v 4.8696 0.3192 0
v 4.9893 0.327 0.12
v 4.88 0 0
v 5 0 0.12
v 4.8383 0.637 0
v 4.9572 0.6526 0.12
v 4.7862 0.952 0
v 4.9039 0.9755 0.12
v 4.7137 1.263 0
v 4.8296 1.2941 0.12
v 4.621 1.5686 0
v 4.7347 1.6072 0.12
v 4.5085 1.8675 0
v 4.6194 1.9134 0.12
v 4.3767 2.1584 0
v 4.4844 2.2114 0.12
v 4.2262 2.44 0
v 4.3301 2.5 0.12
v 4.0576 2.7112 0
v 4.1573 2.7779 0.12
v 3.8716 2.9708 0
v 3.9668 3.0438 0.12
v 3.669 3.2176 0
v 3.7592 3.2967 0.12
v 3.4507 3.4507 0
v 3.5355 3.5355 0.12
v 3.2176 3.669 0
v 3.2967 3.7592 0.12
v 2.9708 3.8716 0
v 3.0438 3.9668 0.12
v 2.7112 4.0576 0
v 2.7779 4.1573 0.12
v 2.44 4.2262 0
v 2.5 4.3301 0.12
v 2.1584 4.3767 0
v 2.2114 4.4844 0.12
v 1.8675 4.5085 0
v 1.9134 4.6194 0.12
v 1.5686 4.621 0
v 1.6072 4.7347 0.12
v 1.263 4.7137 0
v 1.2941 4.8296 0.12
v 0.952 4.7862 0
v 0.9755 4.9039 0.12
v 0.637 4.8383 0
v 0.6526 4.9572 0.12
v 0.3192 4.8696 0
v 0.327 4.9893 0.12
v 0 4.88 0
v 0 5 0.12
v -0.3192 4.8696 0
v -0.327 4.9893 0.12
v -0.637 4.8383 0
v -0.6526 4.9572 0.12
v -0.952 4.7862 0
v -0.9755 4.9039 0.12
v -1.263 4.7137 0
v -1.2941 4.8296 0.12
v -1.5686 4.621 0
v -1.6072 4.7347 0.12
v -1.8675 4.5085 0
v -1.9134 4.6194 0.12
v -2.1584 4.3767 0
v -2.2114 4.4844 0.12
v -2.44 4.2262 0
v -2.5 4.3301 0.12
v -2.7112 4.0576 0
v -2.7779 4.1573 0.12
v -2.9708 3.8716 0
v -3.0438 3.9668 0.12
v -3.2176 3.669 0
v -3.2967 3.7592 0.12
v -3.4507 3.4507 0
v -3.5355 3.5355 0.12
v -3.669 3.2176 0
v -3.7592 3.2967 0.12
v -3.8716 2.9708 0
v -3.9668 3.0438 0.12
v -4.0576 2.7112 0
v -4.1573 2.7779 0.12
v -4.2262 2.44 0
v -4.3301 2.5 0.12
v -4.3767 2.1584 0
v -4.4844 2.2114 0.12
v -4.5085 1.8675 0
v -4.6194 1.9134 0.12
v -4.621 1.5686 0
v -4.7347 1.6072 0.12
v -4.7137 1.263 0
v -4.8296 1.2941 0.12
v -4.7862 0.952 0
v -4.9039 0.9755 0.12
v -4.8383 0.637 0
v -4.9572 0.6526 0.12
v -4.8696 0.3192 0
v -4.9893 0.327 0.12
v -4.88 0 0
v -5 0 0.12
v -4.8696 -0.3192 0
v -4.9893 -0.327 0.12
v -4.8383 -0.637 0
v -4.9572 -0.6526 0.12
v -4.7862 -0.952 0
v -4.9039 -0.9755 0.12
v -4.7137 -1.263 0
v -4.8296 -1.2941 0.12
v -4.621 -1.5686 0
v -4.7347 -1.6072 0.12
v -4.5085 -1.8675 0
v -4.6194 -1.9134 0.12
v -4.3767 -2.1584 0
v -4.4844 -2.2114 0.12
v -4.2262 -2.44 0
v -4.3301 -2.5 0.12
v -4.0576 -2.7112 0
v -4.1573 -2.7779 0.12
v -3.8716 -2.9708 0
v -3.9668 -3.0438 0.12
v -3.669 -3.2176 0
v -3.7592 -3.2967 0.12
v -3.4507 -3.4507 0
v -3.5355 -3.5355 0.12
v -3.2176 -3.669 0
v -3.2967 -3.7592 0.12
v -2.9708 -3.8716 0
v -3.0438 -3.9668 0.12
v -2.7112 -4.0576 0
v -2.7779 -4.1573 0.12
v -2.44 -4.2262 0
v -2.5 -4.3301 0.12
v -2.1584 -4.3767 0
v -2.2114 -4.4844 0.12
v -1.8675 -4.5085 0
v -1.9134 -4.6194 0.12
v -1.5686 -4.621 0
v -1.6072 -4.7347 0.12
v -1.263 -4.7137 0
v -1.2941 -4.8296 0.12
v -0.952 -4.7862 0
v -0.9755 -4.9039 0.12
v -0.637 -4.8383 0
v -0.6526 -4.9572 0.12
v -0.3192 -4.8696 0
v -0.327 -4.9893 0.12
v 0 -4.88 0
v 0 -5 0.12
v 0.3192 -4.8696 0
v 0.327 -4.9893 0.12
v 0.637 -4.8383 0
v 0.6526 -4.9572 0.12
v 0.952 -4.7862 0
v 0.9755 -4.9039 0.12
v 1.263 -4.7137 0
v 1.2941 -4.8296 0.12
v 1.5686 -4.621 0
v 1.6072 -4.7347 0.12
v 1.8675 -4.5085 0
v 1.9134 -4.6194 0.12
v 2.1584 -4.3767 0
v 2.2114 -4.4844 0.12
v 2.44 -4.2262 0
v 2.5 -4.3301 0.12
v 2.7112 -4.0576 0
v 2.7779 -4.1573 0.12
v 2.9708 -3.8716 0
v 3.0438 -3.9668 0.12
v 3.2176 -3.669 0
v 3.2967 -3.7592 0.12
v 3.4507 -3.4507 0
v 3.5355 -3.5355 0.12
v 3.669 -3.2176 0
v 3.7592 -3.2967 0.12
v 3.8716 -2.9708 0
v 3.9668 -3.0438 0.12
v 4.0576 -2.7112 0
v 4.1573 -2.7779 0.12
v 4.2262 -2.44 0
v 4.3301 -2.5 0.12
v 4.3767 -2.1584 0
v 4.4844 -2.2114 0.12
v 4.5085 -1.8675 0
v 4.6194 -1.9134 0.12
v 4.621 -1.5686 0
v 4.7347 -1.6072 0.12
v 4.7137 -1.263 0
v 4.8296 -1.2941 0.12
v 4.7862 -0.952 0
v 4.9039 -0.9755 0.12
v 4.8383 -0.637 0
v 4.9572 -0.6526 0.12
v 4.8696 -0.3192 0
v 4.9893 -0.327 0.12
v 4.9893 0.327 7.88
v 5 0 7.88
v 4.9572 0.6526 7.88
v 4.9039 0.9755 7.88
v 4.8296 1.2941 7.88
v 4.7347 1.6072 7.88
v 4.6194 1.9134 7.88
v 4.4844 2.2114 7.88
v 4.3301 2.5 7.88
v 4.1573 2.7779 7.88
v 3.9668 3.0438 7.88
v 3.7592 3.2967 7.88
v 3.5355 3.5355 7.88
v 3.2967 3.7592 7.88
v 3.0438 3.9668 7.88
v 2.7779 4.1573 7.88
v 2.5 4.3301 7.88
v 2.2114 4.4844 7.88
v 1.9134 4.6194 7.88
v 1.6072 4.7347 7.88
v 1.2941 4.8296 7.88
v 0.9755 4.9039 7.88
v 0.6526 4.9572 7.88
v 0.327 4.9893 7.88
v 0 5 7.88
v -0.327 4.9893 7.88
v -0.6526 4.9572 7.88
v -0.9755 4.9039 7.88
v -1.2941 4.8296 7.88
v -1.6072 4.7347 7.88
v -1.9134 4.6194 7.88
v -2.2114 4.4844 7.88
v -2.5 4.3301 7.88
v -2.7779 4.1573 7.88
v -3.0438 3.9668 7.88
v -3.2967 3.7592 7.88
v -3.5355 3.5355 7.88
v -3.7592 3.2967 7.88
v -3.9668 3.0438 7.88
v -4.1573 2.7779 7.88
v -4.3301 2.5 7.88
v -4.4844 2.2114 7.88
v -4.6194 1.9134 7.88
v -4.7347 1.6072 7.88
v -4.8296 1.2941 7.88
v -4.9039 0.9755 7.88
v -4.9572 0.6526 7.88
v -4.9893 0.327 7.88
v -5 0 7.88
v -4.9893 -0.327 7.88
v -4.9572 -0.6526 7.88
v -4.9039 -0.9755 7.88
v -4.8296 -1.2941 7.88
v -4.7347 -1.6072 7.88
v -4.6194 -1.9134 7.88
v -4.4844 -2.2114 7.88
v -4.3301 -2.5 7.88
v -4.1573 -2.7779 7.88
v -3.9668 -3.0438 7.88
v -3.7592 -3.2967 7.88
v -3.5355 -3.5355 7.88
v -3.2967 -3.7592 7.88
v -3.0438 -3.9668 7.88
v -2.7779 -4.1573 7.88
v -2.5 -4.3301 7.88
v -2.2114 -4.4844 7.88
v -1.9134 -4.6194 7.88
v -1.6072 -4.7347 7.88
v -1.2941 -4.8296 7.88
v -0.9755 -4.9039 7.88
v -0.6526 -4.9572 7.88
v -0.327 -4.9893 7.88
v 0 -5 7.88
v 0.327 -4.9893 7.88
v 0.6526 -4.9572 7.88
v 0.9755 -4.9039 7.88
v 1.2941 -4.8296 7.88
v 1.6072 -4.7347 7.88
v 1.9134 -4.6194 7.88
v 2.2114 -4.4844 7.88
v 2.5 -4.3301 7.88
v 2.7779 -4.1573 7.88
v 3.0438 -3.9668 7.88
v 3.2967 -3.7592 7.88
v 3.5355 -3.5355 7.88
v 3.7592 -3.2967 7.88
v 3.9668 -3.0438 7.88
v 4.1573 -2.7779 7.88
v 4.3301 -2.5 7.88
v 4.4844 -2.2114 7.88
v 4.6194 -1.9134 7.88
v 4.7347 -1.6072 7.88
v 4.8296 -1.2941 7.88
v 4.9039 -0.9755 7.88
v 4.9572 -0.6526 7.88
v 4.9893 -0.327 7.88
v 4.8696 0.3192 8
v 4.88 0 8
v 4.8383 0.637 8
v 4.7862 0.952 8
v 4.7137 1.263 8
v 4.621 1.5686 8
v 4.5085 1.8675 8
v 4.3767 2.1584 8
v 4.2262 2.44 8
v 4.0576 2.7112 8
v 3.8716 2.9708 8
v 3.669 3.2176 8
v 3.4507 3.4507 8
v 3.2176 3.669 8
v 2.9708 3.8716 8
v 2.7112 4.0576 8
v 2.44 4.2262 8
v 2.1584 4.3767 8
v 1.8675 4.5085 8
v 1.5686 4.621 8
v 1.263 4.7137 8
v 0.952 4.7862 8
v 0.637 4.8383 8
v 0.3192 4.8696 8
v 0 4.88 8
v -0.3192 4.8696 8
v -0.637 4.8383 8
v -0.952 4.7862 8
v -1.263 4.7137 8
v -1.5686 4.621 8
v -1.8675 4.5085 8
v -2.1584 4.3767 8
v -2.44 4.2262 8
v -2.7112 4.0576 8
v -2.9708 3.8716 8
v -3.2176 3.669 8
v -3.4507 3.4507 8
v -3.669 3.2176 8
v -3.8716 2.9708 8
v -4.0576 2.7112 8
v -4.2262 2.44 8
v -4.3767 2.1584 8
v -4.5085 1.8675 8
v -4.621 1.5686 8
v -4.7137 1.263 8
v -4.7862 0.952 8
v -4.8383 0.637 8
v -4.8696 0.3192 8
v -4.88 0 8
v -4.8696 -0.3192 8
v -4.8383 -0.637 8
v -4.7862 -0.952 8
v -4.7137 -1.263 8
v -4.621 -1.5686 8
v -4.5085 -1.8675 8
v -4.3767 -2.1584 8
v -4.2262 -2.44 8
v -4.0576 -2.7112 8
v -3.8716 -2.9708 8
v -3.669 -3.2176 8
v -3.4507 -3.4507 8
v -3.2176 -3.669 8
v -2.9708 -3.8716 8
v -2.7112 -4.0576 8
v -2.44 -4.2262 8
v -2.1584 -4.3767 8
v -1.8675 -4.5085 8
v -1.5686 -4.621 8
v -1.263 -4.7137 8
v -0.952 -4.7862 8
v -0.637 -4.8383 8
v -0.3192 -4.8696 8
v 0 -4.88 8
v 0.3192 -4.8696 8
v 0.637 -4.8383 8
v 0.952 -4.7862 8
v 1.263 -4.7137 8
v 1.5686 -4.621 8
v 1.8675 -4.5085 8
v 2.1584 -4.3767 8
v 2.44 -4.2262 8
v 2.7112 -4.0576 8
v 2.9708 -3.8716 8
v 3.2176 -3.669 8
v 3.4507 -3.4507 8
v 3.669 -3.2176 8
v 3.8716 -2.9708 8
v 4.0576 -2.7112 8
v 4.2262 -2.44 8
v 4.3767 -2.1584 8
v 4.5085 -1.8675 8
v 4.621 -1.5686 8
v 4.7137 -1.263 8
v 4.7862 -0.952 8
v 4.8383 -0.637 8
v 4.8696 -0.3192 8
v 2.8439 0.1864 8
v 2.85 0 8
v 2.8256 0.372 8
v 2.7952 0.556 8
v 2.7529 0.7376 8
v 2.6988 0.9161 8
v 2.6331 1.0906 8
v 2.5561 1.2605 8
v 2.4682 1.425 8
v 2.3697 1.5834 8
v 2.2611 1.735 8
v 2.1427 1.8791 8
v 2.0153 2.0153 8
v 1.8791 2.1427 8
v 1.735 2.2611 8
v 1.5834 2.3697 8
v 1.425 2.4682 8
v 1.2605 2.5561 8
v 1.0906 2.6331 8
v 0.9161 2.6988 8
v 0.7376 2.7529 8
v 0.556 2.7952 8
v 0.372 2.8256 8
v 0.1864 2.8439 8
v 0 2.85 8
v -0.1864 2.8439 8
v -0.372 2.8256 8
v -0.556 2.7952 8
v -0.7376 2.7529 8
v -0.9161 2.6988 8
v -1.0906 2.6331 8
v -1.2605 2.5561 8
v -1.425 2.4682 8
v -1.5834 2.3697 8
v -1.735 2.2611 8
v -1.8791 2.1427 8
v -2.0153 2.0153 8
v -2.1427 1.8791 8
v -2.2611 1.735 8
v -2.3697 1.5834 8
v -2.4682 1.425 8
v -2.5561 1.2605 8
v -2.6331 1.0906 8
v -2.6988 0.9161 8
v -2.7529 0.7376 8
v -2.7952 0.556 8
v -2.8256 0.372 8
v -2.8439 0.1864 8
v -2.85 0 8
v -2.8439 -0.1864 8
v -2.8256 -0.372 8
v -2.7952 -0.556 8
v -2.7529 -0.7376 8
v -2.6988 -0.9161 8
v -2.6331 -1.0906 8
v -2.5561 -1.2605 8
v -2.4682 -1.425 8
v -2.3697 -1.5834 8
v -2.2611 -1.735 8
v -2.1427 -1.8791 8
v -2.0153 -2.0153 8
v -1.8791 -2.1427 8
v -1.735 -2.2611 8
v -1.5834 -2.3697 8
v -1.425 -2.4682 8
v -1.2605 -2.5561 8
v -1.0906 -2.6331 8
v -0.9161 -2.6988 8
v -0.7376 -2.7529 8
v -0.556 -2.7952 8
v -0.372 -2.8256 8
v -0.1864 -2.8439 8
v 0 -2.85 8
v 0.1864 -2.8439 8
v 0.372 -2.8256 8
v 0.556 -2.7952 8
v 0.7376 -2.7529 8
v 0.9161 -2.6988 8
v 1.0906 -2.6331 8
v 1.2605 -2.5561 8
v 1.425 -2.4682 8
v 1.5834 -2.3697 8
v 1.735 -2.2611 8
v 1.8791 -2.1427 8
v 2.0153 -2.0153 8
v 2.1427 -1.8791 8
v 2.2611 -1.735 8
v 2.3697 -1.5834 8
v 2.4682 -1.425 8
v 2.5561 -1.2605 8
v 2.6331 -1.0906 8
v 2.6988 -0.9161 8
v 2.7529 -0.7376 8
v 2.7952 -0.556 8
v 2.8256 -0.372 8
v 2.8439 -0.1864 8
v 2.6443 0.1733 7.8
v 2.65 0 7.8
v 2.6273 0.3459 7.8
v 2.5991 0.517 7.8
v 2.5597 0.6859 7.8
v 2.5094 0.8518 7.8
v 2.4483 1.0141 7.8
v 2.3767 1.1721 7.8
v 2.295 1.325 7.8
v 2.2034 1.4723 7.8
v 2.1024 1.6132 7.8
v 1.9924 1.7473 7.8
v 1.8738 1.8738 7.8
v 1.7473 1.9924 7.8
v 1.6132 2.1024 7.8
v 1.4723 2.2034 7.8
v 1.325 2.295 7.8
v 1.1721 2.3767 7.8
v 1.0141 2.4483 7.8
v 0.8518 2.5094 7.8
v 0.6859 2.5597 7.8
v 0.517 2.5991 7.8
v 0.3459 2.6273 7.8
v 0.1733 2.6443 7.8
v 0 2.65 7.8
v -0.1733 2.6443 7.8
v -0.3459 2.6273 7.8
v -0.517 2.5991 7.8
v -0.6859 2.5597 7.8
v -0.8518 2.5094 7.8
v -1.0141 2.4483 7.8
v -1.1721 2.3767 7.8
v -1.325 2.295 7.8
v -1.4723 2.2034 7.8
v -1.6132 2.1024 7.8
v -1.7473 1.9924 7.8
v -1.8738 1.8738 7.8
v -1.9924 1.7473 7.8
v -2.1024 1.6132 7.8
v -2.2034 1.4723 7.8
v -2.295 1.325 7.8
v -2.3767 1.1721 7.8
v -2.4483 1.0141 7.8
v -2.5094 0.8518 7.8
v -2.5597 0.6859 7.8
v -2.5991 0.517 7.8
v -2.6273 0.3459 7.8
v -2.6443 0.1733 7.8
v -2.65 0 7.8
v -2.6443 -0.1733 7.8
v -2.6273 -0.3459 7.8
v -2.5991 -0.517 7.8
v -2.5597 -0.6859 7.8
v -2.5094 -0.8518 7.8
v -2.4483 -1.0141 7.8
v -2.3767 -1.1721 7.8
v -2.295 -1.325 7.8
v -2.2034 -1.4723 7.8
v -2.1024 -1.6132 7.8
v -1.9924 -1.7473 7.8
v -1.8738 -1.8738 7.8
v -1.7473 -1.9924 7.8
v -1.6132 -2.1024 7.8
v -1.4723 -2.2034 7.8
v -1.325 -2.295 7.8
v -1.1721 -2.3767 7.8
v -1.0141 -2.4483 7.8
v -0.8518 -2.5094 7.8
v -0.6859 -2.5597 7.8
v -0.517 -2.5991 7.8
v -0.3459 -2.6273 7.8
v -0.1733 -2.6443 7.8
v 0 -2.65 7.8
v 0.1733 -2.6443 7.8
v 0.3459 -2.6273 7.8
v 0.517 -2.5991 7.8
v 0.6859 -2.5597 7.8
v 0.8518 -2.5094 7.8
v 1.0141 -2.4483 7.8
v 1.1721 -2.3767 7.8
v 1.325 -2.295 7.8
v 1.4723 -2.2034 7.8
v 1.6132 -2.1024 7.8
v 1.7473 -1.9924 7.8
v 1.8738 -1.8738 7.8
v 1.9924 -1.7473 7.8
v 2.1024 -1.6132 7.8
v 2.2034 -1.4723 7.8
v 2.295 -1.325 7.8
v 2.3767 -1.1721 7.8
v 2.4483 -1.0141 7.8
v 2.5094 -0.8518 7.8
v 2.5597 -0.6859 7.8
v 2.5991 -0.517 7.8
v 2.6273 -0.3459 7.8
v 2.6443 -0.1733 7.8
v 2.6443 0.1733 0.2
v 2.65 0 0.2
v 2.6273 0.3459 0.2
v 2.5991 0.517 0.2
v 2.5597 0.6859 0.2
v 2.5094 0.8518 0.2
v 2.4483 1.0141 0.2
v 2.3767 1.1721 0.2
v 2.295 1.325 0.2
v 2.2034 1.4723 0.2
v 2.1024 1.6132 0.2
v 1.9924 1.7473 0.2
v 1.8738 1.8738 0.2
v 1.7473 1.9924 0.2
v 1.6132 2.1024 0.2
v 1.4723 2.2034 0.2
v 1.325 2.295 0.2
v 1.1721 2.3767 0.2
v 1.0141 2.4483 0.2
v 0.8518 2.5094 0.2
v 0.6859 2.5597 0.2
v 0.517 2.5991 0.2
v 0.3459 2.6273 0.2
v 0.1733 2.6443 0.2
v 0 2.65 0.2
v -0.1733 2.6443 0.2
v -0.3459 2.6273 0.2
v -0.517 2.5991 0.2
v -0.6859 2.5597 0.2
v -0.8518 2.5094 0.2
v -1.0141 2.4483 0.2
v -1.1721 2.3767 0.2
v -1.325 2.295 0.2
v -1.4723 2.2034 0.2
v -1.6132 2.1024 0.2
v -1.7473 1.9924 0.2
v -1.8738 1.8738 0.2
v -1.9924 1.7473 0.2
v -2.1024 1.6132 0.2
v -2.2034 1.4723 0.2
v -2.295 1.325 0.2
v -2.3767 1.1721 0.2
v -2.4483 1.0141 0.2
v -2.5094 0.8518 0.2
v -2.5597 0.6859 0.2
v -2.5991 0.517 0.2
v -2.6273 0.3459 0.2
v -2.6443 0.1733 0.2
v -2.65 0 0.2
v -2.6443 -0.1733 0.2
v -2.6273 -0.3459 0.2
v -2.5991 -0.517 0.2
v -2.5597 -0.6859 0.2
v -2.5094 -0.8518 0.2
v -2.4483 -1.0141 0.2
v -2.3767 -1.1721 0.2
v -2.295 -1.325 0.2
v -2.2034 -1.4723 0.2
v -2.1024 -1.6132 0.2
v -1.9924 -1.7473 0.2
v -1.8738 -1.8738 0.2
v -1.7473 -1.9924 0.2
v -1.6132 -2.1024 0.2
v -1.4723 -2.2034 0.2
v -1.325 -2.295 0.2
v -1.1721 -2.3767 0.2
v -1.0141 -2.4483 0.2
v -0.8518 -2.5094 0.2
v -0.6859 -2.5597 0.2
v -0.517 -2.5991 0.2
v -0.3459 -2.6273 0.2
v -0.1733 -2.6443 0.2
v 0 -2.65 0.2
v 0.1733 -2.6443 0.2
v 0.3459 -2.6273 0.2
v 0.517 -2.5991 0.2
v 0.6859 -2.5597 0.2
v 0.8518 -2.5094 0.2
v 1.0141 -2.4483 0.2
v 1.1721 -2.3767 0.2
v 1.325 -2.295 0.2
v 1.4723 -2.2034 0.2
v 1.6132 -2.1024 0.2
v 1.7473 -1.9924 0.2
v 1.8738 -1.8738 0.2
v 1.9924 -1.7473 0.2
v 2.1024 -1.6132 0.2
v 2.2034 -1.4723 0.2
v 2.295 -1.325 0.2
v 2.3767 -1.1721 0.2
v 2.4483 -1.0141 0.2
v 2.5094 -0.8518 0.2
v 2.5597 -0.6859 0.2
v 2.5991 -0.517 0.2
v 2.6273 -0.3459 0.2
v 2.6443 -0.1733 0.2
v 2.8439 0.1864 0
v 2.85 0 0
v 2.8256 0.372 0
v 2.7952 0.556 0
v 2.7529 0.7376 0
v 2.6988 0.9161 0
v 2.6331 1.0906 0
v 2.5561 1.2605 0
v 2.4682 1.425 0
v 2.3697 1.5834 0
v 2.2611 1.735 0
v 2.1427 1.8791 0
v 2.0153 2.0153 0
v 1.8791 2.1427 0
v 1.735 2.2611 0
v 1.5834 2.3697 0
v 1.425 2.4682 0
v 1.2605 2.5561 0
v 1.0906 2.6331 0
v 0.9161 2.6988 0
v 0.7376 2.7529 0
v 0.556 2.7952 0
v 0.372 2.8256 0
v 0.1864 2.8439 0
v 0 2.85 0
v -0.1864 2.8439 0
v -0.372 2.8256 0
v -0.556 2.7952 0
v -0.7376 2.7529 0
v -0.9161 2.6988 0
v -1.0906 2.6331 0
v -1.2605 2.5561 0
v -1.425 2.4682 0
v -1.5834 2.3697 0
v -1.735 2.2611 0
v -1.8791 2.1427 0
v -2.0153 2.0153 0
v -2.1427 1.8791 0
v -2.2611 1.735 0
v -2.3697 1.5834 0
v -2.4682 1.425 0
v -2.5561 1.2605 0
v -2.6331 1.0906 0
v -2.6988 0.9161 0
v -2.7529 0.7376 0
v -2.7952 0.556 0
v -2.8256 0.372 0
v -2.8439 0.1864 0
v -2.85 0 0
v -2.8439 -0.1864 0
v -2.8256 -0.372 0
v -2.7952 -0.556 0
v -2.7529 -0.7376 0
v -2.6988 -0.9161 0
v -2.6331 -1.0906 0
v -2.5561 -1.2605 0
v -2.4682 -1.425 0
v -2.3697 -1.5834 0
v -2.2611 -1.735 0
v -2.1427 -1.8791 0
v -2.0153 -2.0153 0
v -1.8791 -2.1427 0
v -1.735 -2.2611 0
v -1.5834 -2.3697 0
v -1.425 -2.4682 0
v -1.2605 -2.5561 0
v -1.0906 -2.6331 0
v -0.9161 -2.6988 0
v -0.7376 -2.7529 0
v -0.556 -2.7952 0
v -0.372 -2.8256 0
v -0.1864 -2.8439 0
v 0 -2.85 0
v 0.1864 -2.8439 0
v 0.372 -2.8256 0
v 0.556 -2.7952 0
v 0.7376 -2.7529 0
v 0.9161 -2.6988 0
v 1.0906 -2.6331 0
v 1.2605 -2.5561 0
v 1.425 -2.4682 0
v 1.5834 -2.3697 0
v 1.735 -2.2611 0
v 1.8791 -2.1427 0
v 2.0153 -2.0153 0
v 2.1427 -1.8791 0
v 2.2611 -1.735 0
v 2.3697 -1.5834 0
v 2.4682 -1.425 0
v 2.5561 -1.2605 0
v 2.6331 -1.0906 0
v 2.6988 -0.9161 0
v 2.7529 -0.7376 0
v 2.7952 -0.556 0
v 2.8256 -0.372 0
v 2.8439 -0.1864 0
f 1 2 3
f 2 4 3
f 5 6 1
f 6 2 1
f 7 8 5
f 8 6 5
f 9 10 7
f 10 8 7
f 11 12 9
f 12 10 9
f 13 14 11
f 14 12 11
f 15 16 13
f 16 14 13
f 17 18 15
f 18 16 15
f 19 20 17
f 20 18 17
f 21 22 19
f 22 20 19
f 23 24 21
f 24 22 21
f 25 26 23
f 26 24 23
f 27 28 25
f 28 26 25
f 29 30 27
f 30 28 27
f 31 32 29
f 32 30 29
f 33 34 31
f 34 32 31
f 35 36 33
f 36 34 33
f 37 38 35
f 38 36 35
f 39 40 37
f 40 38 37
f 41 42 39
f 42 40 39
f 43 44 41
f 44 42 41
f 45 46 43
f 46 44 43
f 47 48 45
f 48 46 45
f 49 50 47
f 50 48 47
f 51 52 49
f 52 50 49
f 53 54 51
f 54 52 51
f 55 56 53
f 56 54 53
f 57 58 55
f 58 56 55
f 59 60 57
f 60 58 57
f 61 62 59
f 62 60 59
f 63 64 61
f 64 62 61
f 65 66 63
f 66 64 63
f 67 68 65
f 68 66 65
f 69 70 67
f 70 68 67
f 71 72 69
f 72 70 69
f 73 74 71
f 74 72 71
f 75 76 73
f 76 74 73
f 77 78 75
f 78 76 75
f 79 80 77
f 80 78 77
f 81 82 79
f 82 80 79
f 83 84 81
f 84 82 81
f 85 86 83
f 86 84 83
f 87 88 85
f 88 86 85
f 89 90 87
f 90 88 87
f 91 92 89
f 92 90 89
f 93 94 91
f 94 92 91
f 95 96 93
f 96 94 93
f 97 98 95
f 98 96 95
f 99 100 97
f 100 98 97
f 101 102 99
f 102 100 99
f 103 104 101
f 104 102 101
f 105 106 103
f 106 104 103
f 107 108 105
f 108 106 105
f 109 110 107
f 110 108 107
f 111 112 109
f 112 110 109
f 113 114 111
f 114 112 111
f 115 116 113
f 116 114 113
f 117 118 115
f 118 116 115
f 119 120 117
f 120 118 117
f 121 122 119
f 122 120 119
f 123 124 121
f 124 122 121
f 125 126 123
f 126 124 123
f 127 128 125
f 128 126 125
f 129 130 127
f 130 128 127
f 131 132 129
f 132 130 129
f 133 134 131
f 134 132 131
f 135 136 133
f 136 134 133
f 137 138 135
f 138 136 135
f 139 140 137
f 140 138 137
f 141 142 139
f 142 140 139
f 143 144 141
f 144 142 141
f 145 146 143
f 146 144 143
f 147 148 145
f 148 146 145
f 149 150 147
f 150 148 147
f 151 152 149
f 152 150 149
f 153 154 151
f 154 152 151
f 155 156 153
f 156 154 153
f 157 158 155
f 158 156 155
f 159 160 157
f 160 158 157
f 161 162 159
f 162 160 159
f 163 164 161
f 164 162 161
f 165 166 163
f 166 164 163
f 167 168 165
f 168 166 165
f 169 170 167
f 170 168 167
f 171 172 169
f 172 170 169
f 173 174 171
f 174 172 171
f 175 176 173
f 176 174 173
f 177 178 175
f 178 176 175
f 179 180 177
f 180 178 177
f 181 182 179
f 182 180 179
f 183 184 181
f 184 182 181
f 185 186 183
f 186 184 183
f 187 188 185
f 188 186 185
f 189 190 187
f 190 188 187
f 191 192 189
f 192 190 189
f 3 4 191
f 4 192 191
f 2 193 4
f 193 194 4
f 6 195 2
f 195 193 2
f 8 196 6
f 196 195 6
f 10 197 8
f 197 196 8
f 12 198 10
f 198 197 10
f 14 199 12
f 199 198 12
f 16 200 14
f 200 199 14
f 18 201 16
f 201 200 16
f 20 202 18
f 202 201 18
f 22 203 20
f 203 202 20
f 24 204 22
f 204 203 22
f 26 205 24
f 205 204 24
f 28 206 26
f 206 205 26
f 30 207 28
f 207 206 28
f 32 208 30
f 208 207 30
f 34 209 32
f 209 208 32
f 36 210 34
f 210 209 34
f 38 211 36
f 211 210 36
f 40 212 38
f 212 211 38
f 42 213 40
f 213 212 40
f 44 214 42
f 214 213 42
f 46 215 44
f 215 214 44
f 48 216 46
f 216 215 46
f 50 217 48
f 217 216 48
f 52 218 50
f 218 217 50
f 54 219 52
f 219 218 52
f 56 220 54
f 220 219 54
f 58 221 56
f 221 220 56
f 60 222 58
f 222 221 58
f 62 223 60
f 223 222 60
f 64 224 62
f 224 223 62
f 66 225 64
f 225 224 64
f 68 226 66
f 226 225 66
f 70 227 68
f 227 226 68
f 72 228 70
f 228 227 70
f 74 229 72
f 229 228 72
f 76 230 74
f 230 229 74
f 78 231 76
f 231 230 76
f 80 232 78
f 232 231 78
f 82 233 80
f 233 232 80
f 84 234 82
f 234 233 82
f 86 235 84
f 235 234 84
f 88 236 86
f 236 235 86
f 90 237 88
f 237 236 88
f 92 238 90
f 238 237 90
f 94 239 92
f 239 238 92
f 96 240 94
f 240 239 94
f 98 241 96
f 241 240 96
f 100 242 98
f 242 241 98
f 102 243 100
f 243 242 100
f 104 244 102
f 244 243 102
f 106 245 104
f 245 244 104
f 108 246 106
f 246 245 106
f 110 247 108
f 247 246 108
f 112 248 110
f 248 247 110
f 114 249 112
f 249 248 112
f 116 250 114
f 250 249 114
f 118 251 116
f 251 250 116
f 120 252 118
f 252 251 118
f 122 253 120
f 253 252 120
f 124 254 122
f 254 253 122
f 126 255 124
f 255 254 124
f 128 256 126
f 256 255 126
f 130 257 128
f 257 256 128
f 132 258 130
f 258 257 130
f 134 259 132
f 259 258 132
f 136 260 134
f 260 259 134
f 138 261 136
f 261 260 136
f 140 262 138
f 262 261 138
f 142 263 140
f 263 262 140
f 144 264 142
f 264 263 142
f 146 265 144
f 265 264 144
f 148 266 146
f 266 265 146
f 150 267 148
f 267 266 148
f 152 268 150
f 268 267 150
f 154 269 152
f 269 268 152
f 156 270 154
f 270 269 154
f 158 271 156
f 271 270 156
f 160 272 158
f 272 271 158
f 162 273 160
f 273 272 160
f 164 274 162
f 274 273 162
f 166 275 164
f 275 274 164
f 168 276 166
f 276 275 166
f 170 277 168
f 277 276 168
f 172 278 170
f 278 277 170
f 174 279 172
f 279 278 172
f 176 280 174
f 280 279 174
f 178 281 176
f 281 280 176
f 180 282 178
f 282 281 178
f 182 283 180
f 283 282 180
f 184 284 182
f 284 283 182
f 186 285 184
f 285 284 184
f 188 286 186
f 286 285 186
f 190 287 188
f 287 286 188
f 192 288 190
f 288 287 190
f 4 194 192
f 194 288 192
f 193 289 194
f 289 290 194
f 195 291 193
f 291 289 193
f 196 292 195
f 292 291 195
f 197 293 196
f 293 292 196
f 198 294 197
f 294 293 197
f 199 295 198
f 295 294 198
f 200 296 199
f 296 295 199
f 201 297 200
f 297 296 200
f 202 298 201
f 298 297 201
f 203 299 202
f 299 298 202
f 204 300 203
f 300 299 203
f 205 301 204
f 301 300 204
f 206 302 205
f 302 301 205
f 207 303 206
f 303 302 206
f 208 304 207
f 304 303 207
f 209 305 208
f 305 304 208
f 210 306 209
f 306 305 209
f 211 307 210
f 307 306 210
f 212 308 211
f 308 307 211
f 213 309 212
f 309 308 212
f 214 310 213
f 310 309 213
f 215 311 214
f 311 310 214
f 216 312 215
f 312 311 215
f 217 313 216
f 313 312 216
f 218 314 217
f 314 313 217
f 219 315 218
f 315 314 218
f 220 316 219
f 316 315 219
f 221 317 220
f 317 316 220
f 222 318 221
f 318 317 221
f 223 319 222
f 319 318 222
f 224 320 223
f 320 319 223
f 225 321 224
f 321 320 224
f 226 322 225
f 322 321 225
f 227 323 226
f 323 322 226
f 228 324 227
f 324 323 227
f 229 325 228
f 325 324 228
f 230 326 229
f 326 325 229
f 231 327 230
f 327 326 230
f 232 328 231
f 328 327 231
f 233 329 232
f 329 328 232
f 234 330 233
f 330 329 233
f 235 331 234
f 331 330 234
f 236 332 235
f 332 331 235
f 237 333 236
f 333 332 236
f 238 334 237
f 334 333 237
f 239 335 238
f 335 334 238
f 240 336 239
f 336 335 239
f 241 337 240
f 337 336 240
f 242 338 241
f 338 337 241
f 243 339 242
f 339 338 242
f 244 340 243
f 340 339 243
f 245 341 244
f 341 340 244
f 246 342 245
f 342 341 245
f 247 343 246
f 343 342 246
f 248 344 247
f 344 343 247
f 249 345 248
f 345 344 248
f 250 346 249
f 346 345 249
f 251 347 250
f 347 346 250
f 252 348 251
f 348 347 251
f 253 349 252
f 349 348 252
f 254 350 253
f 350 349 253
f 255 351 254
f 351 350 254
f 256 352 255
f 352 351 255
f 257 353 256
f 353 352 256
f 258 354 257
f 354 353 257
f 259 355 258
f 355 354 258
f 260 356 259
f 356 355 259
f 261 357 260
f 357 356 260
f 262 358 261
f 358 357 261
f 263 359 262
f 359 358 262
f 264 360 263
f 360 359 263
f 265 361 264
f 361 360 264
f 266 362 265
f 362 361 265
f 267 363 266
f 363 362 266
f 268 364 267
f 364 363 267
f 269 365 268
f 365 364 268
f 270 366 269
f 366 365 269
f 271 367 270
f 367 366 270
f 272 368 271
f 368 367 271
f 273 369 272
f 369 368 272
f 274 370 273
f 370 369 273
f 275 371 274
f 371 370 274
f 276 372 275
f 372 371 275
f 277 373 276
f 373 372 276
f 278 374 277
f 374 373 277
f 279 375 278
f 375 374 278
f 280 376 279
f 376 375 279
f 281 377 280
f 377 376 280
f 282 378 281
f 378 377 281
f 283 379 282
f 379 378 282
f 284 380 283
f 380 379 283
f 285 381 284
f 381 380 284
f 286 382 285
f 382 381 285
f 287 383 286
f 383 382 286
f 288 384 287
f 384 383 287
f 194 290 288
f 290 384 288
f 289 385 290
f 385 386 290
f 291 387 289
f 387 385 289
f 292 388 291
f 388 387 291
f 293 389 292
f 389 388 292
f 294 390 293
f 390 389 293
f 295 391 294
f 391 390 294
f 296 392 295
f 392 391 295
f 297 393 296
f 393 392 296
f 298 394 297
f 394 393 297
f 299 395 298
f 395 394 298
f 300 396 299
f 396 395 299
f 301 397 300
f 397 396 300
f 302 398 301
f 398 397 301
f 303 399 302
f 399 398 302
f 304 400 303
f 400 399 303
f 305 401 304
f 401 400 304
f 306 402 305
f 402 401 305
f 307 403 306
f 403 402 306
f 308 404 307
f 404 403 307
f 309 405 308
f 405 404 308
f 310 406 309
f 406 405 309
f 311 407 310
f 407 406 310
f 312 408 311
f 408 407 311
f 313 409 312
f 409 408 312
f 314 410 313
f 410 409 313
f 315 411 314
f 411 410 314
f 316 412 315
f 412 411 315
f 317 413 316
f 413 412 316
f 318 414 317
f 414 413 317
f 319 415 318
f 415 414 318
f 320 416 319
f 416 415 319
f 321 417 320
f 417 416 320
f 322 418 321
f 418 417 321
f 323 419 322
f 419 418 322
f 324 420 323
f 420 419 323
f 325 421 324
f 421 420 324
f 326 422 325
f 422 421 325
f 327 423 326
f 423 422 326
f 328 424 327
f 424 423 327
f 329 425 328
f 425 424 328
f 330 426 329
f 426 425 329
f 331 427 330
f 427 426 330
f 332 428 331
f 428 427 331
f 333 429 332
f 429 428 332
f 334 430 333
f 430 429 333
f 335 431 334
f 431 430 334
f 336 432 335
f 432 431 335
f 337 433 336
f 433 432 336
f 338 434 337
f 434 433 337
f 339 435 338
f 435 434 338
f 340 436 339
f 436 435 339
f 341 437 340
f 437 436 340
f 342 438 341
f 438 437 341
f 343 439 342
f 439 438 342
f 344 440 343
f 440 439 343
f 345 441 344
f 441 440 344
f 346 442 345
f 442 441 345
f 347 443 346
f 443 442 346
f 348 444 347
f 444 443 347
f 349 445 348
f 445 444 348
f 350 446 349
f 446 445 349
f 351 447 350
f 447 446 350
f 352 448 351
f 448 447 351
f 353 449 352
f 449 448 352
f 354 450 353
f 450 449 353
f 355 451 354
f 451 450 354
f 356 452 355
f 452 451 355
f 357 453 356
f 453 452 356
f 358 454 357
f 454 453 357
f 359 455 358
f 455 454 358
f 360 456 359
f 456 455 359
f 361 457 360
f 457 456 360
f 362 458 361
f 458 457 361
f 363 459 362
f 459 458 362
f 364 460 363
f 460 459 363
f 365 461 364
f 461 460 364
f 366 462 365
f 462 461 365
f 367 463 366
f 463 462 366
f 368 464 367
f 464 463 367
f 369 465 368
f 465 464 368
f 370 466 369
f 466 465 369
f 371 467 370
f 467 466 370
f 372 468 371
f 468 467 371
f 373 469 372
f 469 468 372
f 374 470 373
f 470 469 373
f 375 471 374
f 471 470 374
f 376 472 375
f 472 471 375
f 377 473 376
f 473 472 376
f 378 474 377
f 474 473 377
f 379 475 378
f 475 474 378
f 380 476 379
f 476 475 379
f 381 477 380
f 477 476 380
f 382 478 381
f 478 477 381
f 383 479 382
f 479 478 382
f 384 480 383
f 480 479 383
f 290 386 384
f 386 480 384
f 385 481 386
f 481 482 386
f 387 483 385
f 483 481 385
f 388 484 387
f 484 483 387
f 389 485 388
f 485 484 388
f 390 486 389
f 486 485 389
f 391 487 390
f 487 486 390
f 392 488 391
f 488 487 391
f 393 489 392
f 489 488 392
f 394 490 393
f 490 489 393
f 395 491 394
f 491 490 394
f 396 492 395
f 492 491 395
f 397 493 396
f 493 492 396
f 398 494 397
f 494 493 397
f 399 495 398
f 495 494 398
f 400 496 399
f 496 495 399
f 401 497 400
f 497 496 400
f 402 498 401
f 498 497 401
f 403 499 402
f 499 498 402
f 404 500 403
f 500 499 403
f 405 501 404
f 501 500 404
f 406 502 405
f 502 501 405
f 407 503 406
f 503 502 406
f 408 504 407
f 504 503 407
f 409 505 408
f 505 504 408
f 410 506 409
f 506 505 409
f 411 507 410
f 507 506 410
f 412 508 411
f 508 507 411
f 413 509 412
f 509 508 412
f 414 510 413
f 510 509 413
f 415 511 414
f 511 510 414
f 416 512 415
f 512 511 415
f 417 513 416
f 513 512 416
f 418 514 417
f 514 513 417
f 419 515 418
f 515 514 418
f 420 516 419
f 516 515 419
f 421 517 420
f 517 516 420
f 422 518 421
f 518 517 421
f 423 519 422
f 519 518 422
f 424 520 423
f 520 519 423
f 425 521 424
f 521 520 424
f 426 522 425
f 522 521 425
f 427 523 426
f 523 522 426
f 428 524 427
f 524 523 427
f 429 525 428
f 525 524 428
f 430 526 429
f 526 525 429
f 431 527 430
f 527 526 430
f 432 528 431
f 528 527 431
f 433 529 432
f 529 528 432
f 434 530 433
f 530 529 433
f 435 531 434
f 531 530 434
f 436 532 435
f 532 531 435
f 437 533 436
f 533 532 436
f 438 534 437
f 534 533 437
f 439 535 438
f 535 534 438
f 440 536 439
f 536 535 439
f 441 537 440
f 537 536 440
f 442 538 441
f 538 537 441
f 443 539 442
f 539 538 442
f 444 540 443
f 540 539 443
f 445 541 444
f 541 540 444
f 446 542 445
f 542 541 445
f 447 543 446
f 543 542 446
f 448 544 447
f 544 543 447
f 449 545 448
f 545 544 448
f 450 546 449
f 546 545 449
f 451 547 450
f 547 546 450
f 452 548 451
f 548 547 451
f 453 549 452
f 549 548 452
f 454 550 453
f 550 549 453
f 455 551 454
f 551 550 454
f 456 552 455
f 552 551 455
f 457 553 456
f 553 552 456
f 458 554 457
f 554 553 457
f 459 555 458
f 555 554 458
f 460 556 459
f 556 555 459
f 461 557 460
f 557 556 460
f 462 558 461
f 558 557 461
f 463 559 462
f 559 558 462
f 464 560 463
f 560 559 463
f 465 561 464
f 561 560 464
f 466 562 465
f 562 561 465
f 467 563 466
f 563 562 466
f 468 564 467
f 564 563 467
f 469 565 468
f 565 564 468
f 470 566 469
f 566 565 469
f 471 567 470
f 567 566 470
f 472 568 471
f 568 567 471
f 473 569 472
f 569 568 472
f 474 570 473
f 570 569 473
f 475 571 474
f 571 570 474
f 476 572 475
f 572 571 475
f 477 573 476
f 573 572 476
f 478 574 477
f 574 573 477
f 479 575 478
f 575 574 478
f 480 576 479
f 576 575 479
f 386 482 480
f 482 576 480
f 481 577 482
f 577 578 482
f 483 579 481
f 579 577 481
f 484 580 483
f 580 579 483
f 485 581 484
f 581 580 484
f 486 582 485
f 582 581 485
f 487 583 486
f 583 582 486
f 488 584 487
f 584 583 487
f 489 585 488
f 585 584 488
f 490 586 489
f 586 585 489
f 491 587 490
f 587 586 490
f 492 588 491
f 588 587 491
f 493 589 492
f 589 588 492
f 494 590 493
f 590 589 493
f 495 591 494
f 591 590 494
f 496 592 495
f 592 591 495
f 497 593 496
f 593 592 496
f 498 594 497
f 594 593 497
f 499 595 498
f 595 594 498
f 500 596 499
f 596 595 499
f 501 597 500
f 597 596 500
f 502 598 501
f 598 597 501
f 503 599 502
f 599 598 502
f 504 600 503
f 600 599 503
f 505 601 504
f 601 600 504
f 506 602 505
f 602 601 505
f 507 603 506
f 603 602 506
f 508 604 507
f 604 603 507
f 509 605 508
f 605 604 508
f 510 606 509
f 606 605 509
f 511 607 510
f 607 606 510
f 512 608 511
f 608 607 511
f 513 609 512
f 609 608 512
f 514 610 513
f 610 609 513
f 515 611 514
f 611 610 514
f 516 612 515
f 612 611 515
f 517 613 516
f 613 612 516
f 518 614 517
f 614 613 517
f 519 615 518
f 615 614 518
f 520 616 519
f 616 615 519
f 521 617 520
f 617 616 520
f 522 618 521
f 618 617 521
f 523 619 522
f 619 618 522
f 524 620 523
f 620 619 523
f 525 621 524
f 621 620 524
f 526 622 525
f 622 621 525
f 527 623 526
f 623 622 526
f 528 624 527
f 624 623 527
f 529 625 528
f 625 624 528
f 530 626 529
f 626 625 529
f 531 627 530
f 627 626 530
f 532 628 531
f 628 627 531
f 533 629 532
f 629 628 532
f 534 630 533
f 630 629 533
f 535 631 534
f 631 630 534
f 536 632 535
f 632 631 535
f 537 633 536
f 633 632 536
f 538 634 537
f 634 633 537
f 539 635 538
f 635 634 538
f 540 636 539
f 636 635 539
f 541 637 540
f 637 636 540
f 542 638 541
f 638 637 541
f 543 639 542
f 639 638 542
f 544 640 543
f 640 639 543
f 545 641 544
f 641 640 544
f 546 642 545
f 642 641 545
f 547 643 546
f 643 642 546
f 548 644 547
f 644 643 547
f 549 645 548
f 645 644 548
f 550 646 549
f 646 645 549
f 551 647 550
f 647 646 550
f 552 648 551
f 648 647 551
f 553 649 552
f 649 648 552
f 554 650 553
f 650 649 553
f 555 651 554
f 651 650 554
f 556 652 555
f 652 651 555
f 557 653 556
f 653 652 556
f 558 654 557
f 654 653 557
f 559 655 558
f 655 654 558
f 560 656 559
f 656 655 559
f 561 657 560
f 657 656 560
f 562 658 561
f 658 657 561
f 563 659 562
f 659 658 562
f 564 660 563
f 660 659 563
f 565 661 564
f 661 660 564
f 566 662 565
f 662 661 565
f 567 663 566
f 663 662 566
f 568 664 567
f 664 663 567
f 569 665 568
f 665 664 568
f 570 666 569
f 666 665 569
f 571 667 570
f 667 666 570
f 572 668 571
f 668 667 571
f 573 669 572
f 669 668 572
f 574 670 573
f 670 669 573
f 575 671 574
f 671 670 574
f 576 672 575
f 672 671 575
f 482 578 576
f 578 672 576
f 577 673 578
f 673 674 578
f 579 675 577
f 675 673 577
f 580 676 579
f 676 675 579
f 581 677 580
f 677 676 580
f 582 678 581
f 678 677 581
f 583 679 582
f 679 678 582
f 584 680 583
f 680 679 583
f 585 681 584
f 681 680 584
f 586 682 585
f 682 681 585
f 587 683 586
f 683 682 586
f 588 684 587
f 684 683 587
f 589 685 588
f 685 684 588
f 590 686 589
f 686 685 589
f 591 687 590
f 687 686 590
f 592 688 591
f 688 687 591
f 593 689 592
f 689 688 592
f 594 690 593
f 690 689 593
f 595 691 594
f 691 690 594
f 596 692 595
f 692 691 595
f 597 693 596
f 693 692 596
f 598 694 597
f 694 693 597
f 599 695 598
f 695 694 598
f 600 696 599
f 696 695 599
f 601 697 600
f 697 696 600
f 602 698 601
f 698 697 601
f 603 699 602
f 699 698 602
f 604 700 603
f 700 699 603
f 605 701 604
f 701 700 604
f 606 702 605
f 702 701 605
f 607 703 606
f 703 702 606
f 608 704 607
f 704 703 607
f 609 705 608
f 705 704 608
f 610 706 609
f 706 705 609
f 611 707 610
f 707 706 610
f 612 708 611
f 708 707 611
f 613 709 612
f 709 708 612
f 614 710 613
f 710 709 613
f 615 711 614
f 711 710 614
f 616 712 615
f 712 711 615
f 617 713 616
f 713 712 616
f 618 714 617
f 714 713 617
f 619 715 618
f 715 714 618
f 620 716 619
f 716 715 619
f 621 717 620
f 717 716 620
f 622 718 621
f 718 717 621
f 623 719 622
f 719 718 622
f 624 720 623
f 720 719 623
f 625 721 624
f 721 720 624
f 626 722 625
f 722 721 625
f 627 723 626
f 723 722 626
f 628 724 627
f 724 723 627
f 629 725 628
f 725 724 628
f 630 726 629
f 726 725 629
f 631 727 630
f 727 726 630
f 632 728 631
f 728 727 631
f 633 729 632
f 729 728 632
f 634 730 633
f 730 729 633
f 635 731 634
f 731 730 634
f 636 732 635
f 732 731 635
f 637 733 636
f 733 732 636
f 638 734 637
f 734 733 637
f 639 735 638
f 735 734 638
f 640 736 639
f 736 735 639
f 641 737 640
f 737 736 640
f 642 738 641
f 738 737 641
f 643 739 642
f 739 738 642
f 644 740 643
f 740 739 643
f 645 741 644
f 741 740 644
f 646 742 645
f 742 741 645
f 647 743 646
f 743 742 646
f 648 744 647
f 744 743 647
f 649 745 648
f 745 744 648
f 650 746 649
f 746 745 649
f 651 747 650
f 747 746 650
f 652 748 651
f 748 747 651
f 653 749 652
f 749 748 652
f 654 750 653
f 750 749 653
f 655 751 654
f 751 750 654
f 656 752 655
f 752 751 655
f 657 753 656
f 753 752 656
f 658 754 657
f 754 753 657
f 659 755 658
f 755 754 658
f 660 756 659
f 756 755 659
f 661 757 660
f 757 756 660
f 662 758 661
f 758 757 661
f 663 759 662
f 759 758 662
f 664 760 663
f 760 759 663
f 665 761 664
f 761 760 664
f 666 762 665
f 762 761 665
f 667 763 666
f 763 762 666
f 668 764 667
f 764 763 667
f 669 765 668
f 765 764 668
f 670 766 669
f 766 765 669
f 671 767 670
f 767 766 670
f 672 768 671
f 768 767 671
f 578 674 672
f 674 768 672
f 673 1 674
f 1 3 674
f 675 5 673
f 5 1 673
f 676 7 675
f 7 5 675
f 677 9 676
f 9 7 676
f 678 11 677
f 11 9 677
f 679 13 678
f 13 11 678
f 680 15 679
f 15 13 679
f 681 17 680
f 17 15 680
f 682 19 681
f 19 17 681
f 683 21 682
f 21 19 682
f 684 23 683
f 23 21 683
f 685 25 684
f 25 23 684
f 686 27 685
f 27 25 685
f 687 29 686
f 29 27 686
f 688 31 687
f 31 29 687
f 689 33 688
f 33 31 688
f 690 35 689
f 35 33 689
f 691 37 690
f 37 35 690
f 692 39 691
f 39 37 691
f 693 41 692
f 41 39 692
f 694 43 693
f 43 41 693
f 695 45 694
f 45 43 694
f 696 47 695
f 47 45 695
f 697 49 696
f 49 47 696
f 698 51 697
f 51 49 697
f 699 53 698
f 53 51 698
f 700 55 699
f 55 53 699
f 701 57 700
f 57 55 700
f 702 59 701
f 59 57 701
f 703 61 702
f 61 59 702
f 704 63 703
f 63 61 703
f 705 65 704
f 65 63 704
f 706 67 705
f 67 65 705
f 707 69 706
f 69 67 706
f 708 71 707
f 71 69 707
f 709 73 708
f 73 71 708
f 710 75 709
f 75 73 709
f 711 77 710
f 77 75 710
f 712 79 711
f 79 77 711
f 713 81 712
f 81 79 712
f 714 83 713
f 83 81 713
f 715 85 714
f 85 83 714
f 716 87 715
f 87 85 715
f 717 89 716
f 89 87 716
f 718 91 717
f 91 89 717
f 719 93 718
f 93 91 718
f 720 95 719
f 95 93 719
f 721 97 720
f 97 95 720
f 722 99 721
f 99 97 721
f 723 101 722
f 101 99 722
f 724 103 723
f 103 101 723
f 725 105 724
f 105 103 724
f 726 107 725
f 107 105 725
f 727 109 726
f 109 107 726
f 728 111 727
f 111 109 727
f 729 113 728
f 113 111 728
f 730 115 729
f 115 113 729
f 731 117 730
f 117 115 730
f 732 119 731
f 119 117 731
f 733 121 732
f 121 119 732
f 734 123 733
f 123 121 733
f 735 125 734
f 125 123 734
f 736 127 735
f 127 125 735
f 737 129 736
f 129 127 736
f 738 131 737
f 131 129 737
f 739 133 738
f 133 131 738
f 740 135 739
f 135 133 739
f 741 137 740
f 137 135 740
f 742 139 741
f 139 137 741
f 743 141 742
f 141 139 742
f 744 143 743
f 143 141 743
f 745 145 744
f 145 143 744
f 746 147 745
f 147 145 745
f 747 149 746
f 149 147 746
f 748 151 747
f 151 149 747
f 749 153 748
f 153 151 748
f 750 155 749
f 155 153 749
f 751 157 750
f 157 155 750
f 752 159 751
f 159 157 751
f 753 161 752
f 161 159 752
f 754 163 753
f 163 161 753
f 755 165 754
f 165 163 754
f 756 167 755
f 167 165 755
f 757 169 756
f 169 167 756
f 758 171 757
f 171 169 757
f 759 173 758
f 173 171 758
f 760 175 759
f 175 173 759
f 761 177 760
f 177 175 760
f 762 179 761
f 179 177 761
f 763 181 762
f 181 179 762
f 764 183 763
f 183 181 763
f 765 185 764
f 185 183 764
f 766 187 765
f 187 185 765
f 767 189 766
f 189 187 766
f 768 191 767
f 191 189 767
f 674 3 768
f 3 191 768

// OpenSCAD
// OOMP generic catalogue model; units: mm.
// Stud length is additional to body depth. Tapping depths are model assumptions.
variant = "full"; // [full, display]
family = "spacer";
connection_type = "plain";
depth_mm = 8;
stud_length_mm = 0;
tapped_depth_mm = 0;
bore_mm = 5.3;
outer_diameter_mm = 10;
across_flats_mm = 6;
thread_nominal_diameter_mm = 3;
thread_pitch_mm = 0.5;
edge_chamfer_mm = 0.12;
mouth_chamfer_mm = 0.2;
angular_segments = 96;
samples_per_pitch = 16;

// Boundary travels up the outside, then down any tapped/plain bore.
// Equal-height rings at shoulders form the annular shoulder faces.
n = angular_segments;
threaded = family == "standoff";
has_stud = connection_type == "stud_to_tapped" || connection_type == "stud_to_stud";
two_studs = connection_type == "stud_to_stud";
through = !threaded || connection_type == "tapped_to_tapped";
pitch = thread_pitch_mm;
diameter = threaded ? thread_nominal_diameter_mm : bore_mm;
minor = diameter - 5*sqrt(3)*pitch/8;
transition = mouth_chamfer_mm + (threaded ? 5*sqrt(3)*pitch/16 : 0);
tip_chamfer = mouth_chamfer_mm + 17*sqrt(3)*pitch/48;
function sorted(v) = len(v)<=1 ? v : let(p=v[0])
    concat(sorted([for(x=v) if(x<p-1e-8) x]), [p], sorted([for(x=v) if(x>p+1e-8) x]));
function reverse(v) = [for(i=[len(v)-1:-1:0]) v[i]];
function theta(i) = i*360/n;
function fract(x) = x-floor(x);
function phase_distance(i,z) = abs(fract(z/pitch-theta(i)/360+0.5)-0.5);
function thread_r(i,z) = minor/2 + min(5*sqrt(3)*pitch/16,
    max(0,(phase_distance(i,z)-0.125)*pitch*sqrt(3)));
function stud_r(i,z,tip) = min(diameter/2 - (variant=="full" ?
    min(17*sqrt(3)*pitch/48,max(0,(phase_distance(i,z)-0.0625)*pitch*sqrt(3))) : 0),
    diameter/2-tip_chamfer+abs(z-tip));
function body_r(i,z) = (threaded ? across_flats_mm/2/cos(theta(i)%60-30) : outer_diameter_mm/2)
    - max(0,edge_chamfer_mm-min(z,depth_mm-z));
function bore_r(i,z) = max(threaded ? (variant=="full" ? thread_r(i,z) : minor/2) : diameter/2,
    diameter/2+mouth_chamfer_mm-(through ? min(z,depth_mm-z) : depth_mm-z));
function stud_z(a,b,tip) = let(count=variant=="full" ? ceil(stud_length_mm/pitch*samples_per_pitch) : 1)
    sorted(concat([for(i=[0:count]) a+(b-a)*i/count], [tip==a ? tip+tip_chamfer : tip-tip_chamfer]));
body_z = sorted([0,edge_chamfer_mm,depth_mm-edge_chamfer_mm,depth_mm]);
low = through ? 0 : depth_mm-tapped_depth_mm;
count = threaded && variant=="full" ? ceil((depth_mm-low)/pitch*samples_per_pitch) : 1;
bore_z = two_studs ? [] : reverse(sorted(concat(
    [for(i=[0:count]) low+(depth_mm-low)*i/count],
    [depth_mm-mouth_chamfer_mm,depth_mm-transition],
    through ? [mouth_chamfer_mm,transition] : [])));
// Ring descriptors: [height, kind, tip]. Kind: 0 body, 1 stud, 2 bore.
rings = concat(
    has_stud ? [for(z=stud_z(-stud_length_mm,0,-stud_length_mm)) [z,1,-stud_length_mm]] : [],
    [for(z=body_z) [z,0,0]],
    two_studs ? [for(z=stud_z(depth_mm,depth_mm+stud_length_mm,depth_mm+stud_length_mm)) [z,1,depth_mm+stud_length_mm]] : [],
    [for(z=bore_z) [z,2,0]]);
function radius(i,ring) = ring[1]==0 ? body_r(i,ring[0]) :
    ring[1]==1 ? stud_r(i,ring[0],ring[2]) : bore_r(i,ring[0]);
points = concat([for(ring=rings) for(i=[0:n-1])
    [radius(i,ring)*cos(theta(i)),radius(i,ring)*sin(theta(i)),ring[0]]],
    through ? [] : [[0,0,rings[0][0]],[0,0,rings[len(rings)-1][0]]]);
center = len(rings)*n;
last = (len(rings)-1)*n;
// OpenSCAD winding is opposite to STL winding.
faces = concat(
    [for(j=[0:len(rings)-(through ? 1 : 2)]) for(i=[0:n-1]) each
        let(a=j*n+i,b=j*n+(i+1)%n,c=((j+1)%len(rings))*n+(i+1)%n,d=((j+1)%len(rings))*n+i)
        [[a,c,b],[a,d,c]]],
    through ? [] : [for(i=[0:n-1]) each let(k=(i+1)%n)
        [[center,i,k],[center+1,last+k,last+i]]]);
assert(family=="spacer" || family=="standoff");
assert(!threaded || connection_type=="tapped_to_tapped" || has_stud);
assert(depth_mm>0 && diameter>0 && pitch>0);
assert(variant=="full" || variant=="display");
assert(n>=24 && n%12==0 && samples_per_pitch>=8);
assert(mouth_chamfer_mm>0 && mouth_chamfer_mm<depth_mm/2);
assert(edge_chamfer_mm>=0 && edge_chamfer_mm<depth_mm/2);
assert(diameter+4*max(mouth_chamfer_mm,edge_chamfer_mm) < (threaded ? across_flats_mm : outer_diameter_mm));
assert(!has_stud || stud_length_mm>2*mouth_chamfer_mm);
assert(!through || !threaded || 2*transition<depth_mm);
assert(connection_type!="stud_to_tapped" || (tapped_depth_mm>transition && tapped_depth_mm<depth_mm));
color([0.86,0.85,0.81]) polyhedron(points=points,faces=faces,convexity=20);
